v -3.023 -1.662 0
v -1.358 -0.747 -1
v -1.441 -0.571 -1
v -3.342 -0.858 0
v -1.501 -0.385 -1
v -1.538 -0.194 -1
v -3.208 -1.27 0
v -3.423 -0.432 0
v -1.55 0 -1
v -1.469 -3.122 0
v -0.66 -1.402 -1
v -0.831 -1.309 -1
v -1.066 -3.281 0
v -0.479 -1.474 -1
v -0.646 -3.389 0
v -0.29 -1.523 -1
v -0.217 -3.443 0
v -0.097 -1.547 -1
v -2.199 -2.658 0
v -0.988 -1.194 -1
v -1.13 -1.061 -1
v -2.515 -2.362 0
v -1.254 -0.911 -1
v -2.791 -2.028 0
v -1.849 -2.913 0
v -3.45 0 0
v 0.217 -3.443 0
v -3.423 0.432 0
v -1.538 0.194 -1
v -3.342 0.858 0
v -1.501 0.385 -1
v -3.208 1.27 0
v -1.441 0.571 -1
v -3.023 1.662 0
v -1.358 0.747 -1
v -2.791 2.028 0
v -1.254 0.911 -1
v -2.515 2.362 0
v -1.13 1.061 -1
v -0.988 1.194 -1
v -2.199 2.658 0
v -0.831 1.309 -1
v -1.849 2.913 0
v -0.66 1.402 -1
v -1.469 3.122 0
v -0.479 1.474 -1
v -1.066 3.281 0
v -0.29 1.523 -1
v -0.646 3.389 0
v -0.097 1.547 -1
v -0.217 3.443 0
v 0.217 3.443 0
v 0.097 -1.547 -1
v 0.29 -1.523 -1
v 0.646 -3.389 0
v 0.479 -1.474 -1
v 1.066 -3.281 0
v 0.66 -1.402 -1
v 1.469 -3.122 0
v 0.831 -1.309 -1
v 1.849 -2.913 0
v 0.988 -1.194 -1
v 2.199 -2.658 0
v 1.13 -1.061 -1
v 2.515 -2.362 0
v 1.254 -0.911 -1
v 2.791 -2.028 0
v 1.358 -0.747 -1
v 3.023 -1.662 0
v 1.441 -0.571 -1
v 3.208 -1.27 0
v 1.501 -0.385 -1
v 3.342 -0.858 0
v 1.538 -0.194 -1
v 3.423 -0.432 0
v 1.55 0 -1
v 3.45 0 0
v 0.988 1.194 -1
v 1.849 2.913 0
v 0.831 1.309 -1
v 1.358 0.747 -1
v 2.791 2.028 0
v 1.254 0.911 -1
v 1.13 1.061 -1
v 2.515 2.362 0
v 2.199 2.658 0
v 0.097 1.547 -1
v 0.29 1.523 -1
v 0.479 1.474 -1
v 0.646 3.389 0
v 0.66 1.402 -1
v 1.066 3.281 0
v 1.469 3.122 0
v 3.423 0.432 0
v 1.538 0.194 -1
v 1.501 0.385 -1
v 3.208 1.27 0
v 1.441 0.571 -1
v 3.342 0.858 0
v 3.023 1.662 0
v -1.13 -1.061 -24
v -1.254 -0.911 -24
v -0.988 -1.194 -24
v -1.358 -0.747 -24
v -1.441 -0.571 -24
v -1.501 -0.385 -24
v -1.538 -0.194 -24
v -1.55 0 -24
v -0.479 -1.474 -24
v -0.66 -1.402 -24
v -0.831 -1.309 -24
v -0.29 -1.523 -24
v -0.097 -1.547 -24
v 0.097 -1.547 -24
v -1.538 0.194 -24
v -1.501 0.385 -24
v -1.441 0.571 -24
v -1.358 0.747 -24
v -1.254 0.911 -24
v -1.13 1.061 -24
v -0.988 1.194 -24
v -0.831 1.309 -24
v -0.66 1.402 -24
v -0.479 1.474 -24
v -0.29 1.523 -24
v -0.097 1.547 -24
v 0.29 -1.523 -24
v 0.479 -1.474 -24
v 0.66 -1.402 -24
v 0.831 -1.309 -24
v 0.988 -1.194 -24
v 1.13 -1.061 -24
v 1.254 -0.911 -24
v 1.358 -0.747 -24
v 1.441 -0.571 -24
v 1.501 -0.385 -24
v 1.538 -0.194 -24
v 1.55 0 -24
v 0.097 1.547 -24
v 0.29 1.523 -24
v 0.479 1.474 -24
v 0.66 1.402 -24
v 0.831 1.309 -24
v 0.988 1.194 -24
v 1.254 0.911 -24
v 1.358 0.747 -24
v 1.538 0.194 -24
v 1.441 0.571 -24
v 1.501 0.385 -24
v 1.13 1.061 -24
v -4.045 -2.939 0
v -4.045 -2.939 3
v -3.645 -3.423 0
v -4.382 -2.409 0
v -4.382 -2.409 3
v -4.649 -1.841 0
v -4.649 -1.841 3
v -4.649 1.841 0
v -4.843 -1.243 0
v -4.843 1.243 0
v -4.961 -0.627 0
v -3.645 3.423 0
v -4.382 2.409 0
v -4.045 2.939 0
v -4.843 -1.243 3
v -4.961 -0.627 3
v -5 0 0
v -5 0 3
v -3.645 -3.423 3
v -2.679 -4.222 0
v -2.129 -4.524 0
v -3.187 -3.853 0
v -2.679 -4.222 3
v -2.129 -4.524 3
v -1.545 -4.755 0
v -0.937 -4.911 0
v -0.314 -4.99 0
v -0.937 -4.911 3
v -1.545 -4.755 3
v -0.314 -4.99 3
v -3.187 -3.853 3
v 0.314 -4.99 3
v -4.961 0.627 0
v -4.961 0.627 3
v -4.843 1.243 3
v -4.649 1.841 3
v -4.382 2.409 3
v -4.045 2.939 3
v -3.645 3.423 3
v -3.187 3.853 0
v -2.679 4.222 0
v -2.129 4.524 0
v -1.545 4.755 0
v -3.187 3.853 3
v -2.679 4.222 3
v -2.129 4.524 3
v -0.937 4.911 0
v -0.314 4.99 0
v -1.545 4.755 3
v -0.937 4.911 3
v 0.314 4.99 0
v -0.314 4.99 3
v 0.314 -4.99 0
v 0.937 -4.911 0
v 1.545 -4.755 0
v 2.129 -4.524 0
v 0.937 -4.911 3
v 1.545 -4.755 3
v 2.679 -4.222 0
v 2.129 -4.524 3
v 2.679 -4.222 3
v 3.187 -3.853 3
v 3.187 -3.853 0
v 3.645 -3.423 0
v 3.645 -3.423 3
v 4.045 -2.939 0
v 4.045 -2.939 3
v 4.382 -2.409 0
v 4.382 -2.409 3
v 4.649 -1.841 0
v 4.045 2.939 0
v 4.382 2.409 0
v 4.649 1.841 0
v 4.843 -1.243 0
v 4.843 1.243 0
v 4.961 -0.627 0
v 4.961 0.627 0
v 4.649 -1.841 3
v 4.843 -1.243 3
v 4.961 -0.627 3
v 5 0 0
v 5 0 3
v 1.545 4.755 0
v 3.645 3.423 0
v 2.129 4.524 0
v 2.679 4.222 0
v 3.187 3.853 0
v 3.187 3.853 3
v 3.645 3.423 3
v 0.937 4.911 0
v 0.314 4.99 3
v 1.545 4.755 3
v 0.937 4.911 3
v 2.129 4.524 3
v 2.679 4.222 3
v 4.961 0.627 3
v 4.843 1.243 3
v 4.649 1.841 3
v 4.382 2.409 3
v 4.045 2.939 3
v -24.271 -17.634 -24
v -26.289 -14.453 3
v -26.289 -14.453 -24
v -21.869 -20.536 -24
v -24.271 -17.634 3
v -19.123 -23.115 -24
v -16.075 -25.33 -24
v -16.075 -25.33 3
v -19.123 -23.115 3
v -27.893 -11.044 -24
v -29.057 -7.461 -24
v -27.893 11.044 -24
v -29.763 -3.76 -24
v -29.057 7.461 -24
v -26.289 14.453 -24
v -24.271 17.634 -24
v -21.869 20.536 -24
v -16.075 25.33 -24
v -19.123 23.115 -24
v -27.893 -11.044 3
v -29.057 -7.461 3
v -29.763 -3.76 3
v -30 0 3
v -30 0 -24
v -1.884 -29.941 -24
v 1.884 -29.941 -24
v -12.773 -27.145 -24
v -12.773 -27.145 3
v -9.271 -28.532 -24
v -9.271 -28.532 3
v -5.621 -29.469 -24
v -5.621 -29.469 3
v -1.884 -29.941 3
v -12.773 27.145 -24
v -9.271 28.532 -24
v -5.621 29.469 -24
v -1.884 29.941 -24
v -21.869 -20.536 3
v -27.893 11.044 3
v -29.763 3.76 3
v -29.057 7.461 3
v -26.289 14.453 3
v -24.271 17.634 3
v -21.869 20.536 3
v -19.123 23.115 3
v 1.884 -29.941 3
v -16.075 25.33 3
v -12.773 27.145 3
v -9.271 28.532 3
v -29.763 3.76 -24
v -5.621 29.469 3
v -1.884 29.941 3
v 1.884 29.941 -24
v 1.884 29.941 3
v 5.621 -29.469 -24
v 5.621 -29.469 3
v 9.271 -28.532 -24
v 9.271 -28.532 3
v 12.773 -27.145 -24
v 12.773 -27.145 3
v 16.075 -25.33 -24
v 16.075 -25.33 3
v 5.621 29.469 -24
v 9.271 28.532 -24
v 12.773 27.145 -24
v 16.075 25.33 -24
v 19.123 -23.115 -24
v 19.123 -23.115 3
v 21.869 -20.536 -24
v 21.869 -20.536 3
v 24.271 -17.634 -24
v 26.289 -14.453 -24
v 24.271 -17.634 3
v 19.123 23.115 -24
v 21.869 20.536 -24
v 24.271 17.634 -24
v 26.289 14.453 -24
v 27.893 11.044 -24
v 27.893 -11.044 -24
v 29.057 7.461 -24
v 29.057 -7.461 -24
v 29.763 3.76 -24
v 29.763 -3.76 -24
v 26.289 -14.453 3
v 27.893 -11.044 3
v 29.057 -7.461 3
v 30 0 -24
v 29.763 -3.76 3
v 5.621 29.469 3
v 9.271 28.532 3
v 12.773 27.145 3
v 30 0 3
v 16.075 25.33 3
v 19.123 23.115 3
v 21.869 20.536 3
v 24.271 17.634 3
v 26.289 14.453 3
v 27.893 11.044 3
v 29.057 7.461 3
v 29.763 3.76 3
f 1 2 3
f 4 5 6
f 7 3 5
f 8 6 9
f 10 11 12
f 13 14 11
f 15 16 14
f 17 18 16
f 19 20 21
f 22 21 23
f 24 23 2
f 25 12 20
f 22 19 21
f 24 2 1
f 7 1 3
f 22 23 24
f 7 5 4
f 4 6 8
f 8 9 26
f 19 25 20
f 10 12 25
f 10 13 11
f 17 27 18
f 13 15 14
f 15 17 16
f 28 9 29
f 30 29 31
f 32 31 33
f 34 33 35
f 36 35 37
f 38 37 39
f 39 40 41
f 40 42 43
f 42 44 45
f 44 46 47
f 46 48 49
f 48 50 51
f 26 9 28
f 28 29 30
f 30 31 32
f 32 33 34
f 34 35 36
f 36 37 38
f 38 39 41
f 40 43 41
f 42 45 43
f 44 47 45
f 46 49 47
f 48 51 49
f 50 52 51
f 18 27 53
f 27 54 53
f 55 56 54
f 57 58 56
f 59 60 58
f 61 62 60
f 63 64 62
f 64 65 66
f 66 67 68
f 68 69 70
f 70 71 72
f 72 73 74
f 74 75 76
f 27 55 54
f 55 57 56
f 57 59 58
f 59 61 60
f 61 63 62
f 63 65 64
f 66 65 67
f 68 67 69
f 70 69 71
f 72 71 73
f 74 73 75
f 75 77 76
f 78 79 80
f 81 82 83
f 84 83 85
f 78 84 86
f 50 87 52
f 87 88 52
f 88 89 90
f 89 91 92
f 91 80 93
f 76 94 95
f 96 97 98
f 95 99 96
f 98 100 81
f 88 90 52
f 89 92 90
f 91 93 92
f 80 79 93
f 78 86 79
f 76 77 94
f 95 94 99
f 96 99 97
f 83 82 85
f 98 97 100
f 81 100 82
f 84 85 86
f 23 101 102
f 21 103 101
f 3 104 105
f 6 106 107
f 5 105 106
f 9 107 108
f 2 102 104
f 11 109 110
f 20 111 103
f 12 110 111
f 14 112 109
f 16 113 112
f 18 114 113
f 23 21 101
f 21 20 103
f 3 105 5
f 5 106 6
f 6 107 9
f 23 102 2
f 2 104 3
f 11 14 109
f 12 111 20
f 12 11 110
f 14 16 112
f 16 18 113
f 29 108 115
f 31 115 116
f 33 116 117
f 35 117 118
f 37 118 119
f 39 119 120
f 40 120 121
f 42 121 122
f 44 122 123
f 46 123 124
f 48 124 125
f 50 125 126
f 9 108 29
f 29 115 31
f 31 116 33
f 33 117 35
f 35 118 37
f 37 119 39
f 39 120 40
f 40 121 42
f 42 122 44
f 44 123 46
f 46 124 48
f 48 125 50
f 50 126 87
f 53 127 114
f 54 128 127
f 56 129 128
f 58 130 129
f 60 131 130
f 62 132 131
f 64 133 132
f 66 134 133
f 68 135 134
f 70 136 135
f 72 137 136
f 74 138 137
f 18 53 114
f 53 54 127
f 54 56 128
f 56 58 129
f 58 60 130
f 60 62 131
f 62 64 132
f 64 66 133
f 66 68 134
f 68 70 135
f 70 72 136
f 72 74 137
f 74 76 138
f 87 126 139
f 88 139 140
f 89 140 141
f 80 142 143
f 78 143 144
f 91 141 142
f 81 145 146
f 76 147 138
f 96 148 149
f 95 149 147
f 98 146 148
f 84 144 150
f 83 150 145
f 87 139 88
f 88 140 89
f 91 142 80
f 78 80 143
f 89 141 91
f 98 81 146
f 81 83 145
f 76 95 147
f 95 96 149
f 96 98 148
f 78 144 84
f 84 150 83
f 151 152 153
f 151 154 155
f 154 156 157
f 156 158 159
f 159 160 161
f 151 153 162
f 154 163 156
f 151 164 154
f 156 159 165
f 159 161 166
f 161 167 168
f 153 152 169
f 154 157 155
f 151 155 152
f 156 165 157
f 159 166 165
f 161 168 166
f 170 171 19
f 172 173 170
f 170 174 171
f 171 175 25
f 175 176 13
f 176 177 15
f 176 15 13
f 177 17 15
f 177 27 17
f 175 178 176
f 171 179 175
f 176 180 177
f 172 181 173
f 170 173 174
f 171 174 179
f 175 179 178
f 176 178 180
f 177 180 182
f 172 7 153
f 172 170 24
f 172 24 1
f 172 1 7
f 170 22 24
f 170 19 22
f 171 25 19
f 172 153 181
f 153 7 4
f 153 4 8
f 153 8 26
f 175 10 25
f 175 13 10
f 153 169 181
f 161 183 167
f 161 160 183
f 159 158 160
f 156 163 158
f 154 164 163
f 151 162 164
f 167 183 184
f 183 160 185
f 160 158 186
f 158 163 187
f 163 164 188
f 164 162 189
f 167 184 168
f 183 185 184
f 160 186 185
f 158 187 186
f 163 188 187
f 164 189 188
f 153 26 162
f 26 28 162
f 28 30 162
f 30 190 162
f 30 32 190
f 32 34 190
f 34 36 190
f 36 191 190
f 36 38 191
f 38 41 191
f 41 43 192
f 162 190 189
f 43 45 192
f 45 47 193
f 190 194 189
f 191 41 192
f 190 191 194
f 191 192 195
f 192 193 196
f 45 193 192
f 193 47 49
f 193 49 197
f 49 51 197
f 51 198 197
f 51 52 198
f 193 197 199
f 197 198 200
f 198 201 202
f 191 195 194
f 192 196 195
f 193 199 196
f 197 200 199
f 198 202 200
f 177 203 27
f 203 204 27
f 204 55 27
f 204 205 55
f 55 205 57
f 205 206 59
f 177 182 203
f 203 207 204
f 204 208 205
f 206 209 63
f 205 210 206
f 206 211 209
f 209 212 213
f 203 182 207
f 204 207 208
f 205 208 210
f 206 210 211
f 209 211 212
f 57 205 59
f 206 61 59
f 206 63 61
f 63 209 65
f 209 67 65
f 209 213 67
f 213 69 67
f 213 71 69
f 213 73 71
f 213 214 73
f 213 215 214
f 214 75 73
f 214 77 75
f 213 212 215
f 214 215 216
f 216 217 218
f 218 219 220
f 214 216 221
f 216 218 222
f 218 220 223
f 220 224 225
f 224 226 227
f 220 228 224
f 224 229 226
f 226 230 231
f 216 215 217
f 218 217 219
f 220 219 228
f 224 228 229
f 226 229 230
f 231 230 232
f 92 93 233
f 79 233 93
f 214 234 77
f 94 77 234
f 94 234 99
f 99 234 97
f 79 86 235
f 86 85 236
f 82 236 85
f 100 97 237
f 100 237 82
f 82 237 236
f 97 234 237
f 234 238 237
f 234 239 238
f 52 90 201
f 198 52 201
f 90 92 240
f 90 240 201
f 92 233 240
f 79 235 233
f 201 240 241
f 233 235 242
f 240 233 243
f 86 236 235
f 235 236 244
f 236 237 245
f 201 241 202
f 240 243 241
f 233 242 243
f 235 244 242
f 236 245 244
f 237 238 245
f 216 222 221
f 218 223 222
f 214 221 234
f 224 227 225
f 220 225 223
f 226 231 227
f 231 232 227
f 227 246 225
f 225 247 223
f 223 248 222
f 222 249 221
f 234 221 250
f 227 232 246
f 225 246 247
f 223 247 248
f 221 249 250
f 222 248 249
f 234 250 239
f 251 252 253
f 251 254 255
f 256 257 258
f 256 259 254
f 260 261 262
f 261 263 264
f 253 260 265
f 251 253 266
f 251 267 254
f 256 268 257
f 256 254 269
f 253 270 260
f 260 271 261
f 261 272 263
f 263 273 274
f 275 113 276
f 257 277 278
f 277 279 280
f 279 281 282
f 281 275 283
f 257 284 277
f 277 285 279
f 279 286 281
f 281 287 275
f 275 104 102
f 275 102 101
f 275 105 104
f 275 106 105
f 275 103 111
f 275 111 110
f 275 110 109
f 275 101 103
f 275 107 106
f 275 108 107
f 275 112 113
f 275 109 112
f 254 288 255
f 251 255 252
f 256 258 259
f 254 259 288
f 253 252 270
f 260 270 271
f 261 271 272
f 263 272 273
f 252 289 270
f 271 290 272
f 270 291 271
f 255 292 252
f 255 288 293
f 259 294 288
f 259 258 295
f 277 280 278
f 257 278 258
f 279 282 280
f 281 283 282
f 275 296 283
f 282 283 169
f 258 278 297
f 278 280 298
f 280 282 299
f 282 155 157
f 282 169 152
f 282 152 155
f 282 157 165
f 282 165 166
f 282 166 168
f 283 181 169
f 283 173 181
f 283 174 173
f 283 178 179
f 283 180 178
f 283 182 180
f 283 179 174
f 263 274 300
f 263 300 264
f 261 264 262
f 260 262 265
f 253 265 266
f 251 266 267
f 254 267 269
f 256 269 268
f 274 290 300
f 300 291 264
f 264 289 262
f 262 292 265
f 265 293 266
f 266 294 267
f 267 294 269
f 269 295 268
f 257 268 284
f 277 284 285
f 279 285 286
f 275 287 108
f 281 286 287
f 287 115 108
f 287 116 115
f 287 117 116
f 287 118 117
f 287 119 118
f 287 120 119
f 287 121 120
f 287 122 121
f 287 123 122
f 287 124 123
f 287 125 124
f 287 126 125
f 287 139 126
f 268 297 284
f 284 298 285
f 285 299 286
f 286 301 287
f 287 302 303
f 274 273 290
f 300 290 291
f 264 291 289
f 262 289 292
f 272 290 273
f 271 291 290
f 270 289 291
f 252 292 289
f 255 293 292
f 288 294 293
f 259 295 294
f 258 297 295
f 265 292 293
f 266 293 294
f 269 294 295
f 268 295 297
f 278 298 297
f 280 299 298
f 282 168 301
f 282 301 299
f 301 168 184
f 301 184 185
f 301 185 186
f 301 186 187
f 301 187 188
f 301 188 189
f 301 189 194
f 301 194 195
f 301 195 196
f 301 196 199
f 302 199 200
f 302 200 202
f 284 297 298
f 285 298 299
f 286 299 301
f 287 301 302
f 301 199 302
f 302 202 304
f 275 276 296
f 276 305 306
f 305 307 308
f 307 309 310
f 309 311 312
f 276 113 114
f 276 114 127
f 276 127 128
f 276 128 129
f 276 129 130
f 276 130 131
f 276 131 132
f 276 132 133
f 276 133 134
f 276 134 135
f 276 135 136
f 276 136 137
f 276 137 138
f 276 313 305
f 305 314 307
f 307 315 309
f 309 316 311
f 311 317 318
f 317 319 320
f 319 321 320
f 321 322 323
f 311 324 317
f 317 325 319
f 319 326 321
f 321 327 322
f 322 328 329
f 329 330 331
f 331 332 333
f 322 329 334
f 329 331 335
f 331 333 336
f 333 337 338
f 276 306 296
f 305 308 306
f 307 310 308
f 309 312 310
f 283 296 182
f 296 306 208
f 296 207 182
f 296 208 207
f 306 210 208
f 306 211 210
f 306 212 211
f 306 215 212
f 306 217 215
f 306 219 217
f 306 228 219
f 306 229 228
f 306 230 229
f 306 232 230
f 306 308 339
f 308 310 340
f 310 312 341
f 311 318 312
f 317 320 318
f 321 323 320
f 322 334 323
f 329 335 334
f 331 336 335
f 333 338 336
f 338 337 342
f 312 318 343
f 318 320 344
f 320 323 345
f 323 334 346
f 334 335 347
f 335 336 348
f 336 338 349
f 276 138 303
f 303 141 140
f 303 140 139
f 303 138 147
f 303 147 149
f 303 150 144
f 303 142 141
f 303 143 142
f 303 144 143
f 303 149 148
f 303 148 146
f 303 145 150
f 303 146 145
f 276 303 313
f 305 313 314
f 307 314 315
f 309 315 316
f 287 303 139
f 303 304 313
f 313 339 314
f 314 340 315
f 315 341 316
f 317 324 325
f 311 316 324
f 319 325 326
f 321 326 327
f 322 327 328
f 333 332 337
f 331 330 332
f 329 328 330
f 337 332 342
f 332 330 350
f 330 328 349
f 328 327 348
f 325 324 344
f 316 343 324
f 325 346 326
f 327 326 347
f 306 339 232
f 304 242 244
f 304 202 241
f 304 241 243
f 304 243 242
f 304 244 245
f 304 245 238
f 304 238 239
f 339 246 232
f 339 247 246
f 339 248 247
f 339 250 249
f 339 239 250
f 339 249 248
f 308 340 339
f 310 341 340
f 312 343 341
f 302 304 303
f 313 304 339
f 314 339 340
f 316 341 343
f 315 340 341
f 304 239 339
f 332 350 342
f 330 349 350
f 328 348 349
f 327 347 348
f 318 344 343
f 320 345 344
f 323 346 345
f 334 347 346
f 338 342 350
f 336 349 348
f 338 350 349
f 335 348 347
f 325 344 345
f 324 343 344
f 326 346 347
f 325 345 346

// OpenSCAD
$fn = 50;

difference() {
	union() {
		translate(v = [0, 0, -24.0]) {
			cylinder(h = 27, r = 30.0);
		}
	}
	union() {
		translate(v = [0, 0, 0]) {
			rotate(a = [0, 0, 0]) {
				difference() {
					union() {
						translate(v = [0, 0, -27.0]) {
							cylinder(h = 27, r = 1.25);
						}
						translate(v = [0, 0, -1.0]) {
							cylinder(h = 1.0, r1 = 1.55, r2 = 3.45);
						}
						translate(v = [0, 0, -27.0]) {
							cylinder(h = 27, r = 1.55);
						}
						translate(v = [0, 0, -27.0]) {
							cylinder(h = 27, r = 1.25);
						}
					}
					union();
				}
			}
		}
		#cylinder(h = 3, r = 5.0);
	}
}
